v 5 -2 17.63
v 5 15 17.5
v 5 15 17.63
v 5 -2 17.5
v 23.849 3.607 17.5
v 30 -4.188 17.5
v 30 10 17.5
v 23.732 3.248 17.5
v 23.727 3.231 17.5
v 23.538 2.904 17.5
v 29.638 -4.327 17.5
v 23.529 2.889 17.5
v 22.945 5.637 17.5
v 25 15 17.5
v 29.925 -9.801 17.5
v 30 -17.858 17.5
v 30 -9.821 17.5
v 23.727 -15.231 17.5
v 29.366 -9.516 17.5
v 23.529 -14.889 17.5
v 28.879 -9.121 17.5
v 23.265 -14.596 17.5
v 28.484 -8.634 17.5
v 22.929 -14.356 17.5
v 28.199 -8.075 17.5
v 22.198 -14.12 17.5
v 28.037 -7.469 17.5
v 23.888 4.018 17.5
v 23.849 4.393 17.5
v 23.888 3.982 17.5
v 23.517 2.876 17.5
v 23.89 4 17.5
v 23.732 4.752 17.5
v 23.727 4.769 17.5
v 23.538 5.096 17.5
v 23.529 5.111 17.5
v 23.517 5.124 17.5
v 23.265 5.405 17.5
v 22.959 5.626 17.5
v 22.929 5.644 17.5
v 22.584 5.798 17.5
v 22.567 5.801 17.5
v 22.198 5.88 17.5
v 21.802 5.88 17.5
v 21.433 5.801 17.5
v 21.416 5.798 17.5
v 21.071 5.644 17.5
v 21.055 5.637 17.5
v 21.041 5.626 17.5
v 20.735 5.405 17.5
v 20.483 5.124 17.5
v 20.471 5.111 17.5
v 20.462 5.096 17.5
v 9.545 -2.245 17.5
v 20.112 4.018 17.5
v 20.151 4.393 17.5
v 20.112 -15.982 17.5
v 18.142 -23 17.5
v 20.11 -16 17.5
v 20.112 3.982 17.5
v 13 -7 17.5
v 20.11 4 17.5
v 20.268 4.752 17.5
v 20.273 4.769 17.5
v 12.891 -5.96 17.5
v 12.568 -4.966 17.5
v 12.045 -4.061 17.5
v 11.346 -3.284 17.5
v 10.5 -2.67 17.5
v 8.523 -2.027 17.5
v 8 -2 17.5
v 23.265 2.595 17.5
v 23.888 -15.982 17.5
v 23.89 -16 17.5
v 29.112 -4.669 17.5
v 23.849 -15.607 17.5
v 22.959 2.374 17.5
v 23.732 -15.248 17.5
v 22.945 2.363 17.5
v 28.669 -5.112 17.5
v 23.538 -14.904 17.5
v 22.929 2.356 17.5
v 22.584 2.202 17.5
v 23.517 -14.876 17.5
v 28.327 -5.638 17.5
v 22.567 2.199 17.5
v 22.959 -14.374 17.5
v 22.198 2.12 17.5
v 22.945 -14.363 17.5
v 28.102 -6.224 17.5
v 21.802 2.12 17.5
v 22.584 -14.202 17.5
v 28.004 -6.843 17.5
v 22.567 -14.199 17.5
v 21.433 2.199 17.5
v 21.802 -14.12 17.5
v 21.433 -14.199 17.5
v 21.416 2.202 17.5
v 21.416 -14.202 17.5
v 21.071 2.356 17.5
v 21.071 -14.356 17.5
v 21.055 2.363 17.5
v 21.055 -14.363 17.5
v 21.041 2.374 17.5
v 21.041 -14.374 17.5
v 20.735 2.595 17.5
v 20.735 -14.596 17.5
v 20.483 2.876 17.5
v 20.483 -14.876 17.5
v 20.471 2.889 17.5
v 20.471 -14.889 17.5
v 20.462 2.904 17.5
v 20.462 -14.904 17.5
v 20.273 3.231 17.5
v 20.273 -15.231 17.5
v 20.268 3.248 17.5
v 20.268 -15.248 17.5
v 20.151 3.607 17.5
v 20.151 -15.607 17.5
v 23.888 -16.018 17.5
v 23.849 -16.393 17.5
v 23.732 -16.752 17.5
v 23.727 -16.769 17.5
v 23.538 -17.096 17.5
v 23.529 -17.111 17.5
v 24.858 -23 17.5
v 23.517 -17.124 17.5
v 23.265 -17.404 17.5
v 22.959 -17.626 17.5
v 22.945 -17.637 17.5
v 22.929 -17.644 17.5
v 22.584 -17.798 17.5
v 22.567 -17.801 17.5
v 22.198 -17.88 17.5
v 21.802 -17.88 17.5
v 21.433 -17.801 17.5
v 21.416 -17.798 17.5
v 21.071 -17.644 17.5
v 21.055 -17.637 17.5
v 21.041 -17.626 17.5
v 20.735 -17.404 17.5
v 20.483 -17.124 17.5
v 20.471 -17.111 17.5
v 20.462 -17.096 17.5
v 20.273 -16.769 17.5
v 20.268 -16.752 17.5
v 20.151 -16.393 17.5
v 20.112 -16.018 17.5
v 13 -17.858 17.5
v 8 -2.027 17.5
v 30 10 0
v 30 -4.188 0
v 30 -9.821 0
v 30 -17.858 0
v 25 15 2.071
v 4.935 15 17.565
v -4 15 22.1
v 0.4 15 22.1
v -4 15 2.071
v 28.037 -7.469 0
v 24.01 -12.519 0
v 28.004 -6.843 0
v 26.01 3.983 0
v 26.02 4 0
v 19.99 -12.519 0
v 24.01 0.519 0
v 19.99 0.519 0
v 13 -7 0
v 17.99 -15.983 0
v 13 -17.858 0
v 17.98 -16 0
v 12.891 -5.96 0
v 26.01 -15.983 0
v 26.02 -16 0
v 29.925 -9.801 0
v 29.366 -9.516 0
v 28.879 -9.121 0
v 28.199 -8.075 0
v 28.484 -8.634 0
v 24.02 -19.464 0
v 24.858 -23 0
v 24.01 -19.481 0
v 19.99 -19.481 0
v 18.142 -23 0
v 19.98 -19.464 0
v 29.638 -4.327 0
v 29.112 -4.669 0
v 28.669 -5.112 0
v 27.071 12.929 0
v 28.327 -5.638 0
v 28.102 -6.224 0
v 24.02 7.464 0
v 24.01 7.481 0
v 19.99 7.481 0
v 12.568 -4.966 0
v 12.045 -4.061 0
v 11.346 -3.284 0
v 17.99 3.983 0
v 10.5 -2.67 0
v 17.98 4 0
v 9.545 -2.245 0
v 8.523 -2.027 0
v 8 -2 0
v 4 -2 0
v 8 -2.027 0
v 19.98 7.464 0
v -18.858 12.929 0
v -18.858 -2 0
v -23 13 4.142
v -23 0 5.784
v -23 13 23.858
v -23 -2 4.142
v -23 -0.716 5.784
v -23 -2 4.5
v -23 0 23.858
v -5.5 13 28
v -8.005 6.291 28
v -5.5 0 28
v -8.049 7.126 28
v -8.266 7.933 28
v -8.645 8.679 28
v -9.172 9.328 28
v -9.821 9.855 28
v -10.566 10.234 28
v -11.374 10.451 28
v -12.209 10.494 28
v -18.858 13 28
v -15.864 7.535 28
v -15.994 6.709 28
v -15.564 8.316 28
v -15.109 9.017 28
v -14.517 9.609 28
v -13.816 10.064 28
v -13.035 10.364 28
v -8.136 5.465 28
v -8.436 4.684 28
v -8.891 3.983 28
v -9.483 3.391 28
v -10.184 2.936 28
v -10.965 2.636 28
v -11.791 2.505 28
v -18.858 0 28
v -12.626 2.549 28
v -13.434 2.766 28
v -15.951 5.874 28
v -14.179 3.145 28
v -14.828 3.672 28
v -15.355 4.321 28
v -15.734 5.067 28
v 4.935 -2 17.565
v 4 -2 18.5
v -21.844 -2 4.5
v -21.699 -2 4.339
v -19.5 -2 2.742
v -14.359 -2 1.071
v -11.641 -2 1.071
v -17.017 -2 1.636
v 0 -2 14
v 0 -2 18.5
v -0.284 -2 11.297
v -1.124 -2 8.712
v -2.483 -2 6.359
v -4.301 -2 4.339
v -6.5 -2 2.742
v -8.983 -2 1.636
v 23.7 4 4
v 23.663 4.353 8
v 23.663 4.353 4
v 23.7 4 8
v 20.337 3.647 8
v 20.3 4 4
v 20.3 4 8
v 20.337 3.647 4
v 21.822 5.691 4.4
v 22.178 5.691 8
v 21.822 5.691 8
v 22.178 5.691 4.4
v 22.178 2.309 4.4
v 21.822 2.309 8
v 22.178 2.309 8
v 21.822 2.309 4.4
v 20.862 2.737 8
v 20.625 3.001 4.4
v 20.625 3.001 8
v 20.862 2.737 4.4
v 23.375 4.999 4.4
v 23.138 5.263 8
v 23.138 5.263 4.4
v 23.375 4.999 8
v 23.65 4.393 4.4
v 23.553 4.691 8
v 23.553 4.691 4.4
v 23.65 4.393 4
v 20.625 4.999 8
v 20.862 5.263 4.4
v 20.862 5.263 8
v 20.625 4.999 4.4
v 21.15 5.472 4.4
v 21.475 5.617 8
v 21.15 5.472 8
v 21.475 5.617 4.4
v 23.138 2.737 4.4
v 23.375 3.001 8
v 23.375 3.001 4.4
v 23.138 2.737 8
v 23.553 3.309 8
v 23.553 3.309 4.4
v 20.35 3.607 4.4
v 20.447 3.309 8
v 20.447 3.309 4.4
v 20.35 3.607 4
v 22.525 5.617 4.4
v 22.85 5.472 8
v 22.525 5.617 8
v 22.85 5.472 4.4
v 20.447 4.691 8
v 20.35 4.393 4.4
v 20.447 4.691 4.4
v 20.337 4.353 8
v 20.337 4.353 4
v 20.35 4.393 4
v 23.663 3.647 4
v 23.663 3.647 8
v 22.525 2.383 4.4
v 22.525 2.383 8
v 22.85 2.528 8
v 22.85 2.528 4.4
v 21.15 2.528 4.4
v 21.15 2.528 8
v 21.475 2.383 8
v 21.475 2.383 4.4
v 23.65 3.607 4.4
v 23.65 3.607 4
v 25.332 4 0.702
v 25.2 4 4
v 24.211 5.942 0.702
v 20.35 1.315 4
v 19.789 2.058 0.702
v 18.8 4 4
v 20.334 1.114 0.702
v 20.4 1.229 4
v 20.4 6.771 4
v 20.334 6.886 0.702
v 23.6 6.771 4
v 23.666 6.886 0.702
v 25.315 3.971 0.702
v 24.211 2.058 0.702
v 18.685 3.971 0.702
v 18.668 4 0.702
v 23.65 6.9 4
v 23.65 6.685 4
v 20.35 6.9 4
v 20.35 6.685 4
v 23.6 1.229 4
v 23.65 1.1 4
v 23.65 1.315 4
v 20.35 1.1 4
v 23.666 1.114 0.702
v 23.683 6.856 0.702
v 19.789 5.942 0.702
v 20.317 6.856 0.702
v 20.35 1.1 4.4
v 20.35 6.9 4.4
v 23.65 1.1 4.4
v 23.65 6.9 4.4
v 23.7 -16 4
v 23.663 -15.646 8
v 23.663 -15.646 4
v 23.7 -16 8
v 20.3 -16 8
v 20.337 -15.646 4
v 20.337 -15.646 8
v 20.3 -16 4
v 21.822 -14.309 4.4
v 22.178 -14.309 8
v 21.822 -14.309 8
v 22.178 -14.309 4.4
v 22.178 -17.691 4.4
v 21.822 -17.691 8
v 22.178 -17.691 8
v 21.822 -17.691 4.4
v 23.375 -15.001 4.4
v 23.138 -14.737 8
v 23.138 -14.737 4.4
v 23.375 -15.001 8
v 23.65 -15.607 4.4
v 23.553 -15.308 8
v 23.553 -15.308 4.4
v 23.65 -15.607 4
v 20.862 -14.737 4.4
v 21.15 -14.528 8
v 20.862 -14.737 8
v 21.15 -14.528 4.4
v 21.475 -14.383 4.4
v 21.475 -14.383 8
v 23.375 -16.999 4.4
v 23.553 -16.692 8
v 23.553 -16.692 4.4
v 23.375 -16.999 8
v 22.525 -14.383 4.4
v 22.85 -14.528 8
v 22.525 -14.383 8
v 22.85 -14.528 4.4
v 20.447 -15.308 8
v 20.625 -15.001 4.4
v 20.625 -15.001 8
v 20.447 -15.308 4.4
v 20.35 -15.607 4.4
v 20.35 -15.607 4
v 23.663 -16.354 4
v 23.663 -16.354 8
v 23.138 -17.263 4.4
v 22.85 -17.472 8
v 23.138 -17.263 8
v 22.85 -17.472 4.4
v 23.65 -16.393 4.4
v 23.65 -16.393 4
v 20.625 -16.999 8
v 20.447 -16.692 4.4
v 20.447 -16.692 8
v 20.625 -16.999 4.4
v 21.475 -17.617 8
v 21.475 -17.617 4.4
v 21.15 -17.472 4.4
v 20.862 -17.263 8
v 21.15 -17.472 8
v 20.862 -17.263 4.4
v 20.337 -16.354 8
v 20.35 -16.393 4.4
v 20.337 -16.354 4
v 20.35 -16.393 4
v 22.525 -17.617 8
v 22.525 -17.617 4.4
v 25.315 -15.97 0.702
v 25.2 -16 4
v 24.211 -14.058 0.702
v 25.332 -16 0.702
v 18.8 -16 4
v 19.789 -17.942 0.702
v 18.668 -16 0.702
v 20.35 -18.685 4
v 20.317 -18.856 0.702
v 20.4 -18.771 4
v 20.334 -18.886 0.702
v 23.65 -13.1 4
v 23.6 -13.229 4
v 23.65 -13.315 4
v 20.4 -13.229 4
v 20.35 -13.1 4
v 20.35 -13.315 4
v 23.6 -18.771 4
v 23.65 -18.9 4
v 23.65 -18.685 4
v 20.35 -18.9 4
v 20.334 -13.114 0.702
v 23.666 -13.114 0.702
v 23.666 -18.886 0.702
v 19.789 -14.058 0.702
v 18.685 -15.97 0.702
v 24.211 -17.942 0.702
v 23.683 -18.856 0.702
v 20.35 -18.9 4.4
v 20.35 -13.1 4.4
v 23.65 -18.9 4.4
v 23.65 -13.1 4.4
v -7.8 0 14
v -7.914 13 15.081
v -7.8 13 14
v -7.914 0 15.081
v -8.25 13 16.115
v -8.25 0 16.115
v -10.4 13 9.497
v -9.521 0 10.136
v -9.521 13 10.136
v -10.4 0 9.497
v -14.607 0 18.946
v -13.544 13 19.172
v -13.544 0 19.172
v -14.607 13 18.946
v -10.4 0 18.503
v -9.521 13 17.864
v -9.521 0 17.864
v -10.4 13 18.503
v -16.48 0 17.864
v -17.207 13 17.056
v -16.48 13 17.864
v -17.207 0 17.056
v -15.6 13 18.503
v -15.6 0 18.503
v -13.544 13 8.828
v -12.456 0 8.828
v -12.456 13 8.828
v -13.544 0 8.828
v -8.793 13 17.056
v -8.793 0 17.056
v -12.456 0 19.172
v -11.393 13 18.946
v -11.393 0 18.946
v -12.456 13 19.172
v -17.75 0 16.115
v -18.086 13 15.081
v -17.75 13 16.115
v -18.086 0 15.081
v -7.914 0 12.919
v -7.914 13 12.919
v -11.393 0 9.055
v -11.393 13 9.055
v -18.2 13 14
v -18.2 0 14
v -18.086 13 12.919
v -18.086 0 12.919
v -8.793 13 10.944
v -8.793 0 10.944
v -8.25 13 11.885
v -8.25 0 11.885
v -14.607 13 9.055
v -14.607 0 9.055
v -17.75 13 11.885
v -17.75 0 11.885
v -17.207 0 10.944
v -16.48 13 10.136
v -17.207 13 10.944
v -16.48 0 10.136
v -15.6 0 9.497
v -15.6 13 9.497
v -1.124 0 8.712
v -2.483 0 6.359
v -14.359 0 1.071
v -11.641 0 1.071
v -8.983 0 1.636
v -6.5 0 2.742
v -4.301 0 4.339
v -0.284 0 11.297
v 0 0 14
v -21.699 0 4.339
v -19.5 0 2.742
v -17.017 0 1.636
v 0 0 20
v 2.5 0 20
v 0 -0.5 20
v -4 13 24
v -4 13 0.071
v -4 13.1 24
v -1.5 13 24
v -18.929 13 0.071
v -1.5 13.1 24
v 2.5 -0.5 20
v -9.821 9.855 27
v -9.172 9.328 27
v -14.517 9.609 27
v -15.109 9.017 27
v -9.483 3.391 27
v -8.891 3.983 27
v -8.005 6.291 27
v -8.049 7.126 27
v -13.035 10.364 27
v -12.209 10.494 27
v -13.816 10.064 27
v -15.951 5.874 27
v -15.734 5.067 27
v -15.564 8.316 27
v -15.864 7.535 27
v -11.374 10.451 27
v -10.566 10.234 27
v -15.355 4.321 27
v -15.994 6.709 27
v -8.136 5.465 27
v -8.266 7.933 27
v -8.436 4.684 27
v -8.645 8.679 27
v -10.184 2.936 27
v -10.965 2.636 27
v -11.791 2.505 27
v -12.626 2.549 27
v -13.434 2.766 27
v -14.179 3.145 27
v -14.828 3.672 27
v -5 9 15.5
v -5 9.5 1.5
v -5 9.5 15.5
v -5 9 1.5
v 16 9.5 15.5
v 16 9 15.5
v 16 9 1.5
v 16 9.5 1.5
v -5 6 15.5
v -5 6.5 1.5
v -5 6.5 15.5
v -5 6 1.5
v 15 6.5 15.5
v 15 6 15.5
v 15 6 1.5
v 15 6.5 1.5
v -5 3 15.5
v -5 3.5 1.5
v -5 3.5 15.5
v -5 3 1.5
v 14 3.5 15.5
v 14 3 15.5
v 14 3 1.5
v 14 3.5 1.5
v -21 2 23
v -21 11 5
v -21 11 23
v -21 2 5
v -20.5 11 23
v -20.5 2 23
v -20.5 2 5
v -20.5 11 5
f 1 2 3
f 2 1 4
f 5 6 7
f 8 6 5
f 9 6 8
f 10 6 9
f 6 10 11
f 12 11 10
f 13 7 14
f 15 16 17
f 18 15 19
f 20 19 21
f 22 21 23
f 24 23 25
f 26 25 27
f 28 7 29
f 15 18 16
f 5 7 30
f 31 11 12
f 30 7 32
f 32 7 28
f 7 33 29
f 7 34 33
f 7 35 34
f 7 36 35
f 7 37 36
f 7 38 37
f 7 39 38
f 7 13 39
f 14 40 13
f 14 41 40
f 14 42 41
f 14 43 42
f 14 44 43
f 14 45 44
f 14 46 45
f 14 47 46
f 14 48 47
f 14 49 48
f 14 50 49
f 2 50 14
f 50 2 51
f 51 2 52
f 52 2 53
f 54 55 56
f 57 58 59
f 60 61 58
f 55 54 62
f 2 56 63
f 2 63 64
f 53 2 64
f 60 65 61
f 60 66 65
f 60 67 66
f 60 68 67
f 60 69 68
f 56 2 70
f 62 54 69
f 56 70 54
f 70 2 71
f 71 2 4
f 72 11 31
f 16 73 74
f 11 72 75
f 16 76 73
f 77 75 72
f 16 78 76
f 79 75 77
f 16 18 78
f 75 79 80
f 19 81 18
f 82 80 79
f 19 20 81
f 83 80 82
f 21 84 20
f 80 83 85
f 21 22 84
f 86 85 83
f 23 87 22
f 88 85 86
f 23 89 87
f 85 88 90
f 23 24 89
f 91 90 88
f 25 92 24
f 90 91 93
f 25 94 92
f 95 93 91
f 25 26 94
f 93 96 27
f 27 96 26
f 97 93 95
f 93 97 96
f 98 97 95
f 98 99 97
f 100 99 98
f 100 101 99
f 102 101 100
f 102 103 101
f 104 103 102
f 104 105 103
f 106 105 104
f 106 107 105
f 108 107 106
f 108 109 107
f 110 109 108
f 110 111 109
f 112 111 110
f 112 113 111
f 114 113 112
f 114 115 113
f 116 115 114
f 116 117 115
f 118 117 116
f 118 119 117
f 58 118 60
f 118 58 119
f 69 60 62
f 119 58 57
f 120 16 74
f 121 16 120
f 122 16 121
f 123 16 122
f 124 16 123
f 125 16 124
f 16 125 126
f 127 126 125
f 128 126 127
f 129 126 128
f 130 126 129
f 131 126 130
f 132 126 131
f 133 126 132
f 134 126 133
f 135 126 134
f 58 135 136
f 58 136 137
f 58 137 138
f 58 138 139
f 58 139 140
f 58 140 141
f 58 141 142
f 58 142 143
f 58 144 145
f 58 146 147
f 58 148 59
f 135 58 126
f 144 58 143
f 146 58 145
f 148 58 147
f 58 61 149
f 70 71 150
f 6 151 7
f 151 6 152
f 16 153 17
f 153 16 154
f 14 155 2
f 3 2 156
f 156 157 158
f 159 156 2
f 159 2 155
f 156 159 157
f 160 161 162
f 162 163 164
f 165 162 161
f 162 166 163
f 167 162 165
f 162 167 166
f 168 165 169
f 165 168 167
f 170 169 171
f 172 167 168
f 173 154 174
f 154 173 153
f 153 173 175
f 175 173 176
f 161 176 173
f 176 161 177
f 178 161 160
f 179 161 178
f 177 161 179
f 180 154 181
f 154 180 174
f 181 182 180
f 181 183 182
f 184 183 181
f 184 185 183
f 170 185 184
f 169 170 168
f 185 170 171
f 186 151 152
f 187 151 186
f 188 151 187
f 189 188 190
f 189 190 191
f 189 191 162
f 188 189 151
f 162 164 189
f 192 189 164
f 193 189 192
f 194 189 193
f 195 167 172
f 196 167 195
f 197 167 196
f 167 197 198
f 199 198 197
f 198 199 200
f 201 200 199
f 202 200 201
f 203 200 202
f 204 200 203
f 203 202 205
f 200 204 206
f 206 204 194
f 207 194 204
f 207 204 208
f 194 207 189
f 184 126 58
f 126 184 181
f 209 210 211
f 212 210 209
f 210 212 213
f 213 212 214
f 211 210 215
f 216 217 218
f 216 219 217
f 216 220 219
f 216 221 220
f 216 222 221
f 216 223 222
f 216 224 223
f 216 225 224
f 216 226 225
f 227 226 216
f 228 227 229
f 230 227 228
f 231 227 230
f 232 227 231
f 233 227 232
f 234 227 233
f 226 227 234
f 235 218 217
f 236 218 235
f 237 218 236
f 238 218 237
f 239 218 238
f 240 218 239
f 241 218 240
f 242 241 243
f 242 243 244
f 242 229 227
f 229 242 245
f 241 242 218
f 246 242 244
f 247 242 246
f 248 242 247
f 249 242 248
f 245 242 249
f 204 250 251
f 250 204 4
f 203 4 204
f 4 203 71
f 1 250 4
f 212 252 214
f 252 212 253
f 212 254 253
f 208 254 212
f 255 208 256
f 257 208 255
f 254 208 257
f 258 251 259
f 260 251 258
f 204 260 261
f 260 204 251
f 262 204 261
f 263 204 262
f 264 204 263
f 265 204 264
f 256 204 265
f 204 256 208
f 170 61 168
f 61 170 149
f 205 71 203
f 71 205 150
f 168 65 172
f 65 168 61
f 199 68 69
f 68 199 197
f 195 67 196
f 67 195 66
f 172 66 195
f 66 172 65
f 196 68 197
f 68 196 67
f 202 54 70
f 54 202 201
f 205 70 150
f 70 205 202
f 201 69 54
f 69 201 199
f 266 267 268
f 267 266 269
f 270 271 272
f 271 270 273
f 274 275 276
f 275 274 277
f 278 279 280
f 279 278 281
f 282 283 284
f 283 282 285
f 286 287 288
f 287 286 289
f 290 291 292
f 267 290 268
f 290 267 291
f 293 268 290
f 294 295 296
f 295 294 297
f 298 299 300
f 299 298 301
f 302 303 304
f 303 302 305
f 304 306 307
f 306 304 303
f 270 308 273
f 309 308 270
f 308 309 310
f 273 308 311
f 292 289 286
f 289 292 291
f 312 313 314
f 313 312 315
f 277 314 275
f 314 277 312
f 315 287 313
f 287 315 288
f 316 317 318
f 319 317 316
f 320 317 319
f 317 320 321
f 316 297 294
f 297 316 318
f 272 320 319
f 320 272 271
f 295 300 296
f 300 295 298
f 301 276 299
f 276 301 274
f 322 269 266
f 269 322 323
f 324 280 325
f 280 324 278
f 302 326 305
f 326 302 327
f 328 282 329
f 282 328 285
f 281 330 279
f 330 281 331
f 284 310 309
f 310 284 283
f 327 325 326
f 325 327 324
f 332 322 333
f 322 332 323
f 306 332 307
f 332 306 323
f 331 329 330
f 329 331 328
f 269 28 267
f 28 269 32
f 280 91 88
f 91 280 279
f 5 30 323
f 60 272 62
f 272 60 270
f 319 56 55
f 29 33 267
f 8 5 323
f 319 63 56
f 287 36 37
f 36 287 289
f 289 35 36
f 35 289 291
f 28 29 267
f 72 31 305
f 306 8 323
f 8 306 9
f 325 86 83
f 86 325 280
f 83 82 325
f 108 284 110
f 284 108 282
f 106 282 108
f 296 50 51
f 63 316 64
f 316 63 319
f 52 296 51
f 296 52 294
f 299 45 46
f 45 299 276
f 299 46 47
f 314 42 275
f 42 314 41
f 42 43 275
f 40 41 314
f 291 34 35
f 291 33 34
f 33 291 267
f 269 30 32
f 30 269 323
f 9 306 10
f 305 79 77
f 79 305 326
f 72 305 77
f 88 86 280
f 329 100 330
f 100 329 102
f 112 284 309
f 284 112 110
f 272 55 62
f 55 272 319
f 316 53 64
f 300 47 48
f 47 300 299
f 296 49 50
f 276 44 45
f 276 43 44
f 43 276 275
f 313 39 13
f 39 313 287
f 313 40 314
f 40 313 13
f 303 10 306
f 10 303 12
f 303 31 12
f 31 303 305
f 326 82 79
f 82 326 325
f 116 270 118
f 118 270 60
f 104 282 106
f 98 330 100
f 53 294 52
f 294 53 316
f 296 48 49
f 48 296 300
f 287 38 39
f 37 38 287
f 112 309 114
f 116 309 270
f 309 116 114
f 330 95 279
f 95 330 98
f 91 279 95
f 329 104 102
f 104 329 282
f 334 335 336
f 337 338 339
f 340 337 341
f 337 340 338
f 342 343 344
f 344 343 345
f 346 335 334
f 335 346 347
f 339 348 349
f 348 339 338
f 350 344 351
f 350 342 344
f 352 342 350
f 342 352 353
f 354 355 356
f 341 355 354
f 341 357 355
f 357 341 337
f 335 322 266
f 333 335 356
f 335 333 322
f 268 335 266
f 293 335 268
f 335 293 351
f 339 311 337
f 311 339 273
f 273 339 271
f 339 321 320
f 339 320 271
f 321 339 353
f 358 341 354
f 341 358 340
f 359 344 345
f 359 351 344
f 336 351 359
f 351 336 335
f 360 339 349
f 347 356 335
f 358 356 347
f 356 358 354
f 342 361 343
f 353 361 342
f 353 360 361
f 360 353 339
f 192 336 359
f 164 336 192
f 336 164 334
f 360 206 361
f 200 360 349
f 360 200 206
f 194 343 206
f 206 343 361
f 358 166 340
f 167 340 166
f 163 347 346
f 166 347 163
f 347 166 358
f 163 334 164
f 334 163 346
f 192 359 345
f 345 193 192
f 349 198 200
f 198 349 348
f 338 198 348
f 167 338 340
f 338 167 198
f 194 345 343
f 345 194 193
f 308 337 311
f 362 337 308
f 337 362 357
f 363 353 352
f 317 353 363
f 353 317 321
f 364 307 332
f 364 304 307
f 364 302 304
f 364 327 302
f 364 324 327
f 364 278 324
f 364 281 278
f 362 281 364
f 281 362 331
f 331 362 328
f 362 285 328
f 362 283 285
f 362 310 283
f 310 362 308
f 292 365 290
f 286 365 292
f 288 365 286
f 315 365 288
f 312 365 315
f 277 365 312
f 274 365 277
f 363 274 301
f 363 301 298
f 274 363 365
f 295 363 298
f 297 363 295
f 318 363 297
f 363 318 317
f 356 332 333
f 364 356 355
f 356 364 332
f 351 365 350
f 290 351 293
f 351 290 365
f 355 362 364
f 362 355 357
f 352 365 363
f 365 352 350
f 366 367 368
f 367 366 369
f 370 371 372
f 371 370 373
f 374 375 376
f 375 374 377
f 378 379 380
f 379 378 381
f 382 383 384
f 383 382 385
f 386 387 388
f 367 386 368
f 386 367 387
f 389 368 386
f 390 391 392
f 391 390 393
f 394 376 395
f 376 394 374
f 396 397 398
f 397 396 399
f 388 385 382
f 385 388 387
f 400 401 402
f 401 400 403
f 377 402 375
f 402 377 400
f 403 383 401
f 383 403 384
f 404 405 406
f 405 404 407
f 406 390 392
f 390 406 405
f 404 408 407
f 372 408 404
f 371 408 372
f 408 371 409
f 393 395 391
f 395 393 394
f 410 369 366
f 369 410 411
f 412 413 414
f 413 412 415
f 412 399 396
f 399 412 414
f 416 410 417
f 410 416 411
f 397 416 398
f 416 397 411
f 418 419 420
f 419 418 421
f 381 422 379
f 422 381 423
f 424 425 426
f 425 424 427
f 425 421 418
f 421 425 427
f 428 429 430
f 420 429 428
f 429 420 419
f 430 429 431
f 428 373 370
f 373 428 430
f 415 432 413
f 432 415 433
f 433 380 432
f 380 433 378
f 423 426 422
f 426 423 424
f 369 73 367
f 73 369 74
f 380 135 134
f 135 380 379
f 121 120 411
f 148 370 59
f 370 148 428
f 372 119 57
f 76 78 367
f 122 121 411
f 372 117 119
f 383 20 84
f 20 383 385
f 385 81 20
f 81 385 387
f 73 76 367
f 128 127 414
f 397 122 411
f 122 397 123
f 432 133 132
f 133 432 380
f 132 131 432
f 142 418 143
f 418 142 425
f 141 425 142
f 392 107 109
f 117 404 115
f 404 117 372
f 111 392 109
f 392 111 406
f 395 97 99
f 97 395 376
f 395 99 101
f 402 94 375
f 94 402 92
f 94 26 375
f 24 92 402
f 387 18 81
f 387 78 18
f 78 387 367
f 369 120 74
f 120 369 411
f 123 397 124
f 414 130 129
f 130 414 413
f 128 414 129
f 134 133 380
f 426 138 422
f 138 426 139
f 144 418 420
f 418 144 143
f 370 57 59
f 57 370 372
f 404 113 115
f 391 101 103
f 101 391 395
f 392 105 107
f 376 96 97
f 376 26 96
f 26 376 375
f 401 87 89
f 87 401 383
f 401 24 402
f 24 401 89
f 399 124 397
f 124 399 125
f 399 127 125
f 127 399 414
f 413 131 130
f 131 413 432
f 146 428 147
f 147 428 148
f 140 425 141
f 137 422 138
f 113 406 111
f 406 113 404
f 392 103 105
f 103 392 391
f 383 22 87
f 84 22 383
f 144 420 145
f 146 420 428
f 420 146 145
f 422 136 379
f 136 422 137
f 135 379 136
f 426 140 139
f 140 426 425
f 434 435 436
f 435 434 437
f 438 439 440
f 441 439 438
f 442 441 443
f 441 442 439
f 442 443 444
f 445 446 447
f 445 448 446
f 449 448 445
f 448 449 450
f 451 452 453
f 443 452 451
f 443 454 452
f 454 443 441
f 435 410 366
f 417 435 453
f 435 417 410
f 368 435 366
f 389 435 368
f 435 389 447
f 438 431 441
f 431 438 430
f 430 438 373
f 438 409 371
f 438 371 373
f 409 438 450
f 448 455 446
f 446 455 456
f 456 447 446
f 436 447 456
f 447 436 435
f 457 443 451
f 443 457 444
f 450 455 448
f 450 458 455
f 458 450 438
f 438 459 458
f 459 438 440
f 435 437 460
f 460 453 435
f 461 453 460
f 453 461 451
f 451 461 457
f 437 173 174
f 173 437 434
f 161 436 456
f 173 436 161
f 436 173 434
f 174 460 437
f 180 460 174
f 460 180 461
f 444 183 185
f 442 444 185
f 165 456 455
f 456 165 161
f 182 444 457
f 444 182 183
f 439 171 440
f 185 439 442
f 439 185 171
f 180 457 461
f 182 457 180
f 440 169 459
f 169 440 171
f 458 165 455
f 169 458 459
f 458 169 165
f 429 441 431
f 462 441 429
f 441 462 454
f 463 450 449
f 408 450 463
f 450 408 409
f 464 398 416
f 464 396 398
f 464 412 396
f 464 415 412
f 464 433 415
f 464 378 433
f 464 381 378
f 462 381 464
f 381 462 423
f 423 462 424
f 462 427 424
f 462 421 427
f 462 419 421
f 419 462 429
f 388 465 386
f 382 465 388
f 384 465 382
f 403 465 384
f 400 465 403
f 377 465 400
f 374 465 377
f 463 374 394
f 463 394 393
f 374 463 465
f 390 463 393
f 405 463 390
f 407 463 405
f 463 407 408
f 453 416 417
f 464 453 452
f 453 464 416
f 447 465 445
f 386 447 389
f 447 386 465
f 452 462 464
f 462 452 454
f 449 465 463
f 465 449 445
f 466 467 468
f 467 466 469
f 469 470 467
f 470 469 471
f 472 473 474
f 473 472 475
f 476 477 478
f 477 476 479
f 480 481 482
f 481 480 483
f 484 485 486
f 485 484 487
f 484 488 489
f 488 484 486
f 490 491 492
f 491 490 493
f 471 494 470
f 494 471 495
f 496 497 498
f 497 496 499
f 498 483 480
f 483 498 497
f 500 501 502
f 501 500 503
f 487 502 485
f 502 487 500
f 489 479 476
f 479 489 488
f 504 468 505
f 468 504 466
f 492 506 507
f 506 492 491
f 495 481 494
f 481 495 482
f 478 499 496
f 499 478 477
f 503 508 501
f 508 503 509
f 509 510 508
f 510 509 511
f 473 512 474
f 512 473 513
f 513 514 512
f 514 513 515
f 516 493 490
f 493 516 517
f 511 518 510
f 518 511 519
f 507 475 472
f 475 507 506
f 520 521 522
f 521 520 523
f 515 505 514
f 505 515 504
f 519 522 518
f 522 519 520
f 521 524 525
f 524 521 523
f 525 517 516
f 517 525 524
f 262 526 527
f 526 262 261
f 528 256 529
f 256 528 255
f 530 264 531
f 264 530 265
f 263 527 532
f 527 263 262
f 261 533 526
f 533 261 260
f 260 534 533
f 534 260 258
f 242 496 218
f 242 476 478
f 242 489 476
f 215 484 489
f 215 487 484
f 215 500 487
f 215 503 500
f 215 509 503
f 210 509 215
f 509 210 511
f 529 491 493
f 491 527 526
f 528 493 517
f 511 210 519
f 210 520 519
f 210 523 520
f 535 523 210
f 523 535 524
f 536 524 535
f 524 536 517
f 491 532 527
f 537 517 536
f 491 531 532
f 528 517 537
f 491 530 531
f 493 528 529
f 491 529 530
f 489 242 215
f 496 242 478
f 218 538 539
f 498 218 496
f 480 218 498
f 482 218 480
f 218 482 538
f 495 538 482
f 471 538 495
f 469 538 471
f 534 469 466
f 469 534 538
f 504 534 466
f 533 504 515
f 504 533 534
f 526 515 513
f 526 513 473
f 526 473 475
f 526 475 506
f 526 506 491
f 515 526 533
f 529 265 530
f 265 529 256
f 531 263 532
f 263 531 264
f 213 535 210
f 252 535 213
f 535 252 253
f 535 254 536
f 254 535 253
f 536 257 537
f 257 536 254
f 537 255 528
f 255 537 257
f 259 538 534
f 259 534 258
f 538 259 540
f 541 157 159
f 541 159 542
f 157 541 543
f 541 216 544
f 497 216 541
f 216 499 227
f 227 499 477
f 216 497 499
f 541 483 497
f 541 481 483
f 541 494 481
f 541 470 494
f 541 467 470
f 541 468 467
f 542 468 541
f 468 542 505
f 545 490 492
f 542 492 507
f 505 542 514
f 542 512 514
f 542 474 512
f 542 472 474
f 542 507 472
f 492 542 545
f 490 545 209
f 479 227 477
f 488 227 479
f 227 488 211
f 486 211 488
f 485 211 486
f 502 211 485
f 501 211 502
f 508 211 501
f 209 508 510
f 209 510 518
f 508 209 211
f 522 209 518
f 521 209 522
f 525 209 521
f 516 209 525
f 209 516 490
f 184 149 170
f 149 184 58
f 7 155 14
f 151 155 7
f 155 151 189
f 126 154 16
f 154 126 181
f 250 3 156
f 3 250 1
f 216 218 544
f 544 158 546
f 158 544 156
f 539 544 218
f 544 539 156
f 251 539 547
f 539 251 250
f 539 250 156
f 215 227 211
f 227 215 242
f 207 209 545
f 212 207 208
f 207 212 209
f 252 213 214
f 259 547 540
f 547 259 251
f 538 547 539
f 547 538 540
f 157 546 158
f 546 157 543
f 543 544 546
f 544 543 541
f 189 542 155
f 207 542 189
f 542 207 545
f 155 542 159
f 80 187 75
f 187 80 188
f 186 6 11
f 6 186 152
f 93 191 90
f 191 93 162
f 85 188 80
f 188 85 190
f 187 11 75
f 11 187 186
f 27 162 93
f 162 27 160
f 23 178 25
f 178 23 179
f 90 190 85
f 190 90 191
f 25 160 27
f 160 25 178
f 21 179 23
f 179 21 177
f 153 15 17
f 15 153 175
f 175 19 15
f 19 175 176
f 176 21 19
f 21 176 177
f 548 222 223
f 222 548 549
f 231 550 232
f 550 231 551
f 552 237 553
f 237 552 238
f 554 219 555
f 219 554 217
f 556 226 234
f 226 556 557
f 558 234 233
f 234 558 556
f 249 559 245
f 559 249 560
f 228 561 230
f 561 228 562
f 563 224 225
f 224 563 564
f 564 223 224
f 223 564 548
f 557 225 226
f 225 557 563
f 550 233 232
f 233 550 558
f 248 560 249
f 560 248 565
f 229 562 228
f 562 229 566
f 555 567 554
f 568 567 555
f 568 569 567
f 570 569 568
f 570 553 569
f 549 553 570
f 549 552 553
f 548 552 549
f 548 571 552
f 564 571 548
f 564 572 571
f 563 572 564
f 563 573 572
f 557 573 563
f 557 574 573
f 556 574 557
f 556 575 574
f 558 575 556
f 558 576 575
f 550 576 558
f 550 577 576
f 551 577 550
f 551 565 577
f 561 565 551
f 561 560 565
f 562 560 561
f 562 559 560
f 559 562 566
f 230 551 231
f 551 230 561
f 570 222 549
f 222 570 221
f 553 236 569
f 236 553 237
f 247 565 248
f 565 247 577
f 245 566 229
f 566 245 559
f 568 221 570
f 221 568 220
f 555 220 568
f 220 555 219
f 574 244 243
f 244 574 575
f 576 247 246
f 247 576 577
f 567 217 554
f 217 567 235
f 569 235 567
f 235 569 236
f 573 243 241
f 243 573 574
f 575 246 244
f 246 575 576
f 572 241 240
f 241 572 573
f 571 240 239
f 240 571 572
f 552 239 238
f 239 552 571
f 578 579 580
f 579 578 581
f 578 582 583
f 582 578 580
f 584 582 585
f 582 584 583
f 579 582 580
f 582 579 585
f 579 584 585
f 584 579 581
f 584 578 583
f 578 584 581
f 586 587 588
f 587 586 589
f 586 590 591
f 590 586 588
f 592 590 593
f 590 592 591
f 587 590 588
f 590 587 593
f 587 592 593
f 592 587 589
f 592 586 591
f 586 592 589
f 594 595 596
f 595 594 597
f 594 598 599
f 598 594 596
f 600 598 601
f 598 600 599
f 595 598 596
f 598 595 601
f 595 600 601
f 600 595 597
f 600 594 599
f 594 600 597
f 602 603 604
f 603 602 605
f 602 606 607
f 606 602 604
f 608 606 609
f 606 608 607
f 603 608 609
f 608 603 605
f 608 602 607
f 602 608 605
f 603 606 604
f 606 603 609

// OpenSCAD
// PRUSA iteration3
// PSU-Y reinforcement part 
// GNU GPL v3
// Josef Průša <iam@josefprusa.cz> and contributors
// http://www.reprap.org/wiki/Prusa_Mendel
// http://prusamendel.org

module base()
{
union(){
    difference(){
        union(){
        translate([ 5, -23, 0 ]) cube([ 25, 38, 17.5 ]);  // horizontal plate
        translate([ -23, -2, 0 ]) cube([ 28, 17, 28 ]);  // Y_Corner block    
        }
        translate( [ 4 , -25 , -1 ] ) cube( [ 9 , 23 , 20 ] );  //  holder side cut
    }
    difference(){    
        translate([ 8, -7, 0 ]) cube([ 5, 5, 17.5 ]);  // fillet block
        translate([ 8, -7, -1 ]) cylinder( h = 28, r = 5, $fn=30);  // fillet cut
        }
    }
}


module cutout()
    {

    translate([ 22, 4 , -2 ]) cylinder( h = 20, r = 1.7, $fn=30);  // M3 hole A
    translate([ 22, 4 , 8 ]) cylinder( h = 10, r1 = 1.7, r2=1.9,$fn=30);  // M3 hole A
    translate([ 22, 4 , -1 ]) cylinder( h = 5, r1 = 3.4, r2=3.2,$fn=6);  // M3 nut body A        
    translate([ 22, 4 , -1 ]) cylinder( h = 5, r2 = 0.1, r1 = 5, $fn=6);  // M3 nut hole fillet A
    #translate([ 22, 4 , 4.2 ]) cube([ 3.3 , 5.8 , 0.4 ], center = true ); // bridge force A
        
    translate([ 22, -16 , -2 ]) cylinder( h = 20, r = 1.7, $fn=30);  // M3 hole B
    translate([ 22, -16 , 8 ]) cylinder( h = 10, r1 = 1.7, r2=1.9, $fn=30);  // M3 hole B
    translate([ 22, -16 , -1 ]) cylinder( h = 5, r1 = 3.4, r2=3.2, $fn=6);  // M3 nut body B
    translate([ 22, -16 , -1 ]) cylinder( h = 5, r2 = 0.1, r1 = 5, $fn=6);  // M3 nut hole B fillet
    #translate([ 22, -16 , 4.2 ]) cube([ 3.3 , 5.8 , 0.4 ], center = true ); // bridge force B

    translate([ -13, 14 , 14 ]) rotate([90,0,0]) cylinder( h = 25, r = 5.2, $fn=30);  // threaded rod
    
    translate([ -13, 0 , 14 ]) rotate([90,0,0]) cylinder( h = 4, r = 13, $fn=30);  // washer
    translate([ -29, -7 , 14 ])  cube([ 29, 7, 18 ]);  // washer upper cut
    
    translate([ -24, 13 , -1 ]) cube([ 20, 15, 30 ]);  // Y_Corner cutaway

    //vertical corners 45 degree cut
    translate( [ 12, -31 , -2 ] ) rotate( [0,0,45] ) cube([ 10 , 10 , 21 ]);  
    translate([ 31,  9, -2 ])  rotate( [0,0,45] ) cube([ 10, 10, 21 ]);  
    translate([ 31, -31, -2 ]) rotate( [0,0,45] ) cube([ 10, 10, 21 ]);  

    // horizontal corners 45 degree cut
    translate([ -8.5, -8, 31 ]) rotate( [0,45,0] ) cube([ 19, 40, 20 ]);  
    translate([ -31, -6, 30 ]) rotate( [0,45,0])  cube([ 10, 35, 10 ]);  
    translate([ -31, -6, -2 ]) rotate( [0,45,0] ) cube([ 10, 35, 10 ]);  
    translate([ -26, -4,  2.5 ]) rotate( [45,0,0] ) cube([ 5, 5, 5 ]);  
    translate([ -1, -4, 16.5 ]) rotate( [45,0,0] ) cube([ 5, 5, 5 ]);  
    translate([ -1, -5, 20 ]) cube([ 5, 5, 5 ]);  
    translate([ -5, 16.6, 20.5 ]) rotate( [45,0,0] ) cube([ 6, 5, 5 ]);  
    translate([ -5, 13, 24 ]) cube([ 6, 5, 5 ]);  
    translate([ -30, 15, -5 ]) rotate( [45,0,0] ) cube([ 70, 5, 5 ]);  
    
    translate([ 31, -7, -1 ]) rotate([0,0,45]) cylinder( h = 25, r = 3, $fn=30);  
    translate([ -12, 6.5, 27 ]) rotate([0,0,45]) cylinder( h = 25, r = 4, $fn=30);  
    
    translate([ -5, 9, 1.5 ]) cube([ 21, 0.5, 14 ]);  
    translate([ -5, 6, 1.5 ]) cube([ 20, 0.5, 14 ]);  
    translate([ -5, 3, 1.5 ]) cube([ 19, 0.5, 14 ]);  
    translate([ -21, 2, 5 ]) cube([ 0.5, 9, 18 ]);  
    }

module final_part(){
difference()
{
    base();
    cutout();
    }
}

final_part();
    
